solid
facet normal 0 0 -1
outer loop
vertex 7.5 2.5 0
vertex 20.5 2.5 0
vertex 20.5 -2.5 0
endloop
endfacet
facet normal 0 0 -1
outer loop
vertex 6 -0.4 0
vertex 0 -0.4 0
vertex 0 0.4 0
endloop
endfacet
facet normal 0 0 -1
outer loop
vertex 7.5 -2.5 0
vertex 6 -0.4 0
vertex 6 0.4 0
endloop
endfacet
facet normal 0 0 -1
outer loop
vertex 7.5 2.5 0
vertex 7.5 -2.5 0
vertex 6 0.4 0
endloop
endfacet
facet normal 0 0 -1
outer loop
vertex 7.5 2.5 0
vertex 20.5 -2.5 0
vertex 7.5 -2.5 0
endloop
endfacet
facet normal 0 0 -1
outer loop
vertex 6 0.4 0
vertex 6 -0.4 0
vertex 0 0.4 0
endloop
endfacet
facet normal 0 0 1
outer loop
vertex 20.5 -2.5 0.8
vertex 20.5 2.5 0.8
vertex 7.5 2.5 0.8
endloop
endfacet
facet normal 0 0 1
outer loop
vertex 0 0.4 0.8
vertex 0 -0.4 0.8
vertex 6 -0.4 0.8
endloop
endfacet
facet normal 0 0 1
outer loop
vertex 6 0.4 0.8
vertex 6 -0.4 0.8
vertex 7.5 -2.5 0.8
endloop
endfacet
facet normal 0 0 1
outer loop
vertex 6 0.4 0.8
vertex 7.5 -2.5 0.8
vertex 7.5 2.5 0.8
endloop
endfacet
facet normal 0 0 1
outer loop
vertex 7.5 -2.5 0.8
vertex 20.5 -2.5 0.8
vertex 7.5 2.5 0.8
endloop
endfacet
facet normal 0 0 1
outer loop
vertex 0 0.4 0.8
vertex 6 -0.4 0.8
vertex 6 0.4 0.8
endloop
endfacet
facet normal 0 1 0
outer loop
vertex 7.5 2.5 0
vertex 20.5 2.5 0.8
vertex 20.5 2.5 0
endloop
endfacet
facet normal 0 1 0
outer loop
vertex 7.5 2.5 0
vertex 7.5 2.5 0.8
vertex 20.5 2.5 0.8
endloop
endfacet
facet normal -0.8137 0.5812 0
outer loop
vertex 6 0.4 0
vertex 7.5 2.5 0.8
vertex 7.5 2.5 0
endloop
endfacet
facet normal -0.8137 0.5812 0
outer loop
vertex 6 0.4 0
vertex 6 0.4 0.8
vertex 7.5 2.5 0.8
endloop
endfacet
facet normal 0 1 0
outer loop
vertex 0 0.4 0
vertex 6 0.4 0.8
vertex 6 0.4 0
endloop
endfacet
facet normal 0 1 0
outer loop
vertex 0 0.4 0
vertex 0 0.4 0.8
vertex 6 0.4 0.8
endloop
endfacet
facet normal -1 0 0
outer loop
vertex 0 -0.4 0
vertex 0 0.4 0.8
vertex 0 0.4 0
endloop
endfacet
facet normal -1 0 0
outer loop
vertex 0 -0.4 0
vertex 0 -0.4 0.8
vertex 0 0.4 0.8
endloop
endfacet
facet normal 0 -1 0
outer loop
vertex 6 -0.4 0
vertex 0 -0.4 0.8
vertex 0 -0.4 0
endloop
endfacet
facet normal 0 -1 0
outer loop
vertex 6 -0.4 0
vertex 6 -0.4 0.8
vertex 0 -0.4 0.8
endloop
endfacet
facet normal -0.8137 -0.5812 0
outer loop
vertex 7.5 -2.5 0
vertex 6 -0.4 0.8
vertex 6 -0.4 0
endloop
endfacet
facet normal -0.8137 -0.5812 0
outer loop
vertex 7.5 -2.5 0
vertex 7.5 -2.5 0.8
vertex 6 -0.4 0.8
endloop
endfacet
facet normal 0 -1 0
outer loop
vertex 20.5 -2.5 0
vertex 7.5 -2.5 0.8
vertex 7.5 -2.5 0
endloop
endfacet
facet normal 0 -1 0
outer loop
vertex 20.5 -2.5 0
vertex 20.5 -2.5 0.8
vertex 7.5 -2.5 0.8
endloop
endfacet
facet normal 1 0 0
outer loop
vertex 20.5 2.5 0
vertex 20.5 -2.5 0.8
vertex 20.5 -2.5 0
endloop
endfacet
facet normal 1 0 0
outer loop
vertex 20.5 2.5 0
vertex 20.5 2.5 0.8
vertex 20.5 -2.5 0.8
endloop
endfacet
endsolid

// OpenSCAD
pinLength = 6;
transitionLength = 1.5;
labelLength = 13;

pinWidth = 0.8;
labelWidth = 5;

linear_extrude(pinWidth)
polygon([
	[0, -pinWidth / 2],
	[pinLength, -pinWidth / 2],
	[pinLength + transitionLength, -labelWidth / 2],
	[pinLength + transitionLength + labelLength, -labelWidth / 2],
	[pinLength + transitionLength + labelLength, labelWidth / 2],
	[pinLength + transitionLength, labelWidth / 2],
	[pinLength, pinWidth / 2],
	[0, pinWidth / 2]
]);
